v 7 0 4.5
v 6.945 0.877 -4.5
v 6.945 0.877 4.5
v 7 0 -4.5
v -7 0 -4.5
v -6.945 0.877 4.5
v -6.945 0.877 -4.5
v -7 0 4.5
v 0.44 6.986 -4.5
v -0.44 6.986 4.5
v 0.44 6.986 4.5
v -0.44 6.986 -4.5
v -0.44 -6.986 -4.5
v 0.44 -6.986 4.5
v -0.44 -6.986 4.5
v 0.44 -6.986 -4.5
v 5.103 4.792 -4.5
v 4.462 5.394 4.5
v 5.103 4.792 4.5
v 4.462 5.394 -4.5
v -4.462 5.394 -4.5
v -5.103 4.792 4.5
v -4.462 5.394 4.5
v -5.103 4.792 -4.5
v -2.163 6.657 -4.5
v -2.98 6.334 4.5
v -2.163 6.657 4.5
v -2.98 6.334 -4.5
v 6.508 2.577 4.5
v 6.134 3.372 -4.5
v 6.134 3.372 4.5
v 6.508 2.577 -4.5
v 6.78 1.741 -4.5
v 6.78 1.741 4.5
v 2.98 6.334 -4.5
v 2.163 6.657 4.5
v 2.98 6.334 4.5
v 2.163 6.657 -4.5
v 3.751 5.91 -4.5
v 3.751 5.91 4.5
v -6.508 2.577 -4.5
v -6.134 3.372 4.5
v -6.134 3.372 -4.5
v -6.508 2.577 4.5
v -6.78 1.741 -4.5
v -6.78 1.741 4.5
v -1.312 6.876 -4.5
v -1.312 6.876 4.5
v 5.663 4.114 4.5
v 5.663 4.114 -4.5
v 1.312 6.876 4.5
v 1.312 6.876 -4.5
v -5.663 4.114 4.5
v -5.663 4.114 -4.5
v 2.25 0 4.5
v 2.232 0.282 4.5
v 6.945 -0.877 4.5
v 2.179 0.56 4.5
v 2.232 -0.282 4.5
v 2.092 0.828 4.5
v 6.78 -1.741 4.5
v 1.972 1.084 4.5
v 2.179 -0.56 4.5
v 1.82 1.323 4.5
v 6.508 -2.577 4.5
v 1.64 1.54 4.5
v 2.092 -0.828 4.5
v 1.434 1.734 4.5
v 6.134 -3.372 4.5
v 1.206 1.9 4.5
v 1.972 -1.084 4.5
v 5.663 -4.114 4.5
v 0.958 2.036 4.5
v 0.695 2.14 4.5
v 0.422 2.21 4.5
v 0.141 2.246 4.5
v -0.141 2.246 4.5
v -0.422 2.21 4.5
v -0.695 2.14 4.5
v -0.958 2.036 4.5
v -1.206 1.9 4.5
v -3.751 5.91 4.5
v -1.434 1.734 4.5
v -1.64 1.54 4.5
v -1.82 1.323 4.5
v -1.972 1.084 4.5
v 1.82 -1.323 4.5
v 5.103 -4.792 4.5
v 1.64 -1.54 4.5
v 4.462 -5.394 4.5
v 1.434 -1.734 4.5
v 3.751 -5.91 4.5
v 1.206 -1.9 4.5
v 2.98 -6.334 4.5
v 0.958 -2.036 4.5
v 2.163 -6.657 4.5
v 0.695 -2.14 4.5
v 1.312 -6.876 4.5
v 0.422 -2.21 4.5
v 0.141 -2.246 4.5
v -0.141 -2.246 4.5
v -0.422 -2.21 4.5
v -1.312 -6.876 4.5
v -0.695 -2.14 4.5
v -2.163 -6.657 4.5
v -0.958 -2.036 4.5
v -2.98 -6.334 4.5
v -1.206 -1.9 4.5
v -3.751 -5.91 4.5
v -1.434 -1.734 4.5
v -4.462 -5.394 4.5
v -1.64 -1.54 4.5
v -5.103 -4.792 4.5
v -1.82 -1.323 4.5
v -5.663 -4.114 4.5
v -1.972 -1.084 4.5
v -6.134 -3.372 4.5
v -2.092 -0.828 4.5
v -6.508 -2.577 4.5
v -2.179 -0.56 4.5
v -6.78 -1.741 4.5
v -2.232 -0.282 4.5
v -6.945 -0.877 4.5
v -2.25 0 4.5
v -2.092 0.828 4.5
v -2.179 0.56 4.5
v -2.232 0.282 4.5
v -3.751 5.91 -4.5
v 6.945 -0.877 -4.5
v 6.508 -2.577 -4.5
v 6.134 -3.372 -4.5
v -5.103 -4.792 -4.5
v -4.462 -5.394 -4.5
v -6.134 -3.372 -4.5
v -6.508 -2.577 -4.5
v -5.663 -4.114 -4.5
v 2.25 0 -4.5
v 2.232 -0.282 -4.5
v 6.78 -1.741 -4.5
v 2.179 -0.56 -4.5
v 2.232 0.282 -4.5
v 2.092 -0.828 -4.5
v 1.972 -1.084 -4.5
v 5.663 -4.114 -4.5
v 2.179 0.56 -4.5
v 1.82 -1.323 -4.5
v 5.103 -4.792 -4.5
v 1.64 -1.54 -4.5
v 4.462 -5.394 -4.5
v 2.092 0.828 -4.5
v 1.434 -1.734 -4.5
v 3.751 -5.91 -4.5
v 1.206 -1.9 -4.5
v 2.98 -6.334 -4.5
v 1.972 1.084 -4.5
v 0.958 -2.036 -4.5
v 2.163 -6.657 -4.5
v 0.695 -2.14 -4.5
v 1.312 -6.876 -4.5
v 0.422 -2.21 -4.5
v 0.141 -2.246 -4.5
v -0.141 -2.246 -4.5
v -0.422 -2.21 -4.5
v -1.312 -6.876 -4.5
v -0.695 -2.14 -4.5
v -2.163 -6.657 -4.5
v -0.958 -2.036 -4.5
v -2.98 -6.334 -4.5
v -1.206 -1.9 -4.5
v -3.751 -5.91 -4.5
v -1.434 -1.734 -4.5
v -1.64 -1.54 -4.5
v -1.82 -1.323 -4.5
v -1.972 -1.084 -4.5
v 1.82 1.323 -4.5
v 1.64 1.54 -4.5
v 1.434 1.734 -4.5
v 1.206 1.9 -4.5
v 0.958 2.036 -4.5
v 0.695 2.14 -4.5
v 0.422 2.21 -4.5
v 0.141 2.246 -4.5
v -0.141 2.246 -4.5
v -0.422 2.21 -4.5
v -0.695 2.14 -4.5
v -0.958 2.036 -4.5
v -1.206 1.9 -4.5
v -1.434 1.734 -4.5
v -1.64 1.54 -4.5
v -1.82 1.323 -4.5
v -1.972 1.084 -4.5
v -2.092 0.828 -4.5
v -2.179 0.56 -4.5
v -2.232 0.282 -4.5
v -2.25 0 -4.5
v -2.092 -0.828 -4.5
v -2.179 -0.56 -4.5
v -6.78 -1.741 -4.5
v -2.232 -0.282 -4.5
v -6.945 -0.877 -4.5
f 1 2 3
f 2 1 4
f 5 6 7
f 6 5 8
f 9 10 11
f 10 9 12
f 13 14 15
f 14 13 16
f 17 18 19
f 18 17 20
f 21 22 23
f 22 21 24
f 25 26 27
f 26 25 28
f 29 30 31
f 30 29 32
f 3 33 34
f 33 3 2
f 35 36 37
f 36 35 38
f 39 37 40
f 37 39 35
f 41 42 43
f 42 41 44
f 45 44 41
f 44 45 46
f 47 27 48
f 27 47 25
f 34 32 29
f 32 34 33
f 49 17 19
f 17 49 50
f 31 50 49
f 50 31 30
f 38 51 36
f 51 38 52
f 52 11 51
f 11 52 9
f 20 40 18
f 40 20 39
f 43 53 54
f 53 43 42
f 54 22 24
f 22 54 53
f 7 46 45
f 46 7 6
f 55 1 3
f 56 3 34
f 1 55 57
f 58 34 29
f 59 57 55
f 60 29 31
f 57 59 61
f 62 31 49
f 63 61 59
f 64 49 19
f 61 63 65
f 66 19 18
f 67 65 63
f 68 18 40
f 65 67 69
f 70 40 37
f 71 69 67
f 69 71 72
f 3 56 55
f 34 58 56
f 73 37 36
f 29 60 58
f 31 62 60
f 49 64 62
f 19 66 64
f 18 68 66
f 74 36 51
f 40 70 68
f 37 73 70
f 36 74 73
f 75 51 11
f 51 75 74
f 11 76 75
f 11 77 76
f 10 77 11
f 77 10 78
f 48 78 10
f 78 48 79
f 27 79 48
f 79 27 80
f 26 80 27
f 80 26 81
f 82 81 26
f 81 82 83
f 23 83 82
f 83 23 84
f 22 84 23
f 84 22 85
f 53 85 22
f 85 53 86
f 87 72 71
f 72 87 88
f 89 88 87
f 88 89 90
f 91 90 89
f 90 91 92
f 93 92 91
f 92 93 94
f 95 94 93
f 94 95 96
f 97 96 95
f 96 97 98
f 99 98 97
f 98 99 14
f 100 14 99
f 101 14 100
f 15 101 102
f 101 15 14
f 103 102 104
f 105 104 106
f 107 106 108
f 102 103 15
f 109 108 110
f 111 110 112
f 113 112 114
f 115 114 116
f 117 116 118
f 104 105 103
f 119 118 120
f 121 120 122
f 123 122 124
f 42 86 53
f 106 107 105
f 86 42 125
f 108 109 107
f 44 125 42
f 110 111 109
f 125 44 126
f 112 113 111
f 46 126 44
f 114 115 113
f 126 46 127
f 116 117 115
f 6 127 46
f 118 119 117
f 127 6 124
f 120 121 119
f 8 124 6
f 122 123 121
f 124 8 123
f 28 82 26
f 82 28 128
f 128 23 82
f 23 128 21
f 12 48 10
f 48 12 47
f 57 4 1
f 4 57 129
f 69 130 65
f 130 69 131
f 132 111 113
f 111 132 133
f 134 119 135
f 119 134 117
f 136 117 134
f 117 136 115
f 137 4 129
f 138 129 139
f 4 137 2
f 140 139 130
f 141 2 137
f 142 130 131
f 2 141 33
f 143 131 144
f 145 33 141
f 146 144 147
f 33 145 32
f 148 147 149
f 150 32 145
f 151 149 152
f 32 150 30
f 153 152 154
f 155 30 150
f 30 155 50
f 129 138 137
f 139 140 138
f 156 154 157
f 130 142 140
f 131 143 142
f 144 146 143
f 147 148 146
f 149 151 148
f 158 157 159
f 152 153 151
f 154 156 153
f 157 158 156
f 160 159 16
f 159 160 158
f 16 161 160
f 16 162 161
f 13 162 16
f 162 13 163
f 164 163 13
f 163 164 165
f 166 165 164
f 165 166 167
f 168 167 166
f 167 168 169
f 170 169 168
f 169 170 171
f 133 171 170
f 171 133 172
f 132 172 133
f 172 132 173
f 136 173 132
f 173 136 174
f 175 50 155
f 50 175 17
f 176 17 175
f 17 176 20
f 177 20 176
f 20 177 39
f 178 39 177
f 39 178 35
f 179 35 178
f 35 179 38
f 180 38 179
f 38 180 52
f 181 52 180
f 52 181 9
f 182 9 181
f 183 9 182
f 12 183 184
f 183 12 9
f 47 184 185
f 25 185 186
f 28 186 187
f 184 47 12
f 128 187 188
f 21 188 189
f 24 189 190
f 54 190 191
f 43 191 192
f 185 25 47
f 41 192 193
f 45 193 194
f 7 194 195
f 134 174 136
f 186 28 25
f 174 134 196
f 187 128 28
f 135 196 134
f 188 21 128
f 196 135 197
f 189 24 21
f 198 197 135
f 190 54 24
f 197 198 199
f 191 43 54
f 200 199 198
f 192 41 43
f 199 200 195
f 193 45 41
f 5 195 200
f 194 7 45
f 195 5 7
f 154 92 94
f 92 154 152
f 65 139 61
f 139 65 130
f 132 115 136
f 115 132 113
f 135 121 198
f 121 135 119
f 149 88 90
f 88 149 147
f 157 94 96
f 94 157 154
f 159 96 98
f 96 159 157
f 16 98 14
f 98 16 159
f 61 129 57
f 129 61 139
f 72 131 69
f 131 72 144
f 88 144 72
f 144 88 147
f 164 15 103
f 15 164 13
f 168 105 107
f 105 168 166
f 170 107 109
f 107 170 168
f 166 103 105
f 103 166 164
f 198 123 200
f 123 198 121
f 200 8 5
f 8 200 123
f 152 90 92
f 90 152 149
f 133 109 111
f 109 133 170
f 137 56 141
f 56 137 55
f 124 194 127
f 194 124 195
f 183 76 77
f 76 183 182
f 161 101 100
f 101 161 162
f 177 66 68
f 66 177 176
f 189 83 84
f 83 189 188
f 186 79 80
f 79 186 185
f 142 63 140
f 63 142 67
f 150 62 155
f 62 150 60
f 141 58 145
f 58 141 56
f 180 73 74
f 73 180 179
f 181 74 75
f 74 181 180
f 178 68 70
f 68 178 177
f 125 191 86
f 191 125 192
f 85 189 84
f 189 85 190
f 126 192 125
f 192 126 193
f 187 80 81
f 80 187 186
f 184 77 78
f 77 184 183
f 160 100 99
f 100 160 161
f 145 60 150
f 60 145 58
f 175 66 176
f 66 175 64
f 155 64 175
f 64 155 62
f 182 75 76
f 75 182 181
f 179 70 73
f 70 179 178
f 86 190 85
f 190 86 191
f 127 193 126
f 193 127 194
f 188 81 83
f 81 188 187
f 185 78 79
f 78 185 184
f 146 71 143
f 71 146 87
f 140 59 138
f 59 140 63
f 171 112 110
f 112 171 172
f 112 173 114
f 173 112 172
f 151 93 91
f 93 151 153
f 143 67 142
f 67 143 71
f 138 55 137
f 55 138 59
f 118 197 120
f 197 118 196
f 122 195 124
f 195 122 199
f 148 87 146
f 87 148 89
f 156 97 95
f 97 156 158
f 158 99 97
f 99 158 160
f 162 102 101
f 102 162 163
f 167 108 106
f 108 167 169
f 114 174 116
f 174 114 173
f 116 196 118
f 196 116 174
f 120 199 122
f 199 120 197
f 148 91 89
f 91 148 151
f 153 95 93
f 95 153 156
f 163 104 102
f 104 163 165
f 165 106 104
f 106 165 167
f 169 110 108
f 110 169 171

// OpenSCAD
$fn = 50;


difference() {
	union() {
		translate(v = [0, 0, -4.5000000000]) {
			cylinder(h = 9, r = 7.0000000000);
		}
	}
	union() {
		translate(v = [0, 0, -100.0000000000]) {
			cylinder(h = 200, r = 2.2500000000);
		}
	}
}
